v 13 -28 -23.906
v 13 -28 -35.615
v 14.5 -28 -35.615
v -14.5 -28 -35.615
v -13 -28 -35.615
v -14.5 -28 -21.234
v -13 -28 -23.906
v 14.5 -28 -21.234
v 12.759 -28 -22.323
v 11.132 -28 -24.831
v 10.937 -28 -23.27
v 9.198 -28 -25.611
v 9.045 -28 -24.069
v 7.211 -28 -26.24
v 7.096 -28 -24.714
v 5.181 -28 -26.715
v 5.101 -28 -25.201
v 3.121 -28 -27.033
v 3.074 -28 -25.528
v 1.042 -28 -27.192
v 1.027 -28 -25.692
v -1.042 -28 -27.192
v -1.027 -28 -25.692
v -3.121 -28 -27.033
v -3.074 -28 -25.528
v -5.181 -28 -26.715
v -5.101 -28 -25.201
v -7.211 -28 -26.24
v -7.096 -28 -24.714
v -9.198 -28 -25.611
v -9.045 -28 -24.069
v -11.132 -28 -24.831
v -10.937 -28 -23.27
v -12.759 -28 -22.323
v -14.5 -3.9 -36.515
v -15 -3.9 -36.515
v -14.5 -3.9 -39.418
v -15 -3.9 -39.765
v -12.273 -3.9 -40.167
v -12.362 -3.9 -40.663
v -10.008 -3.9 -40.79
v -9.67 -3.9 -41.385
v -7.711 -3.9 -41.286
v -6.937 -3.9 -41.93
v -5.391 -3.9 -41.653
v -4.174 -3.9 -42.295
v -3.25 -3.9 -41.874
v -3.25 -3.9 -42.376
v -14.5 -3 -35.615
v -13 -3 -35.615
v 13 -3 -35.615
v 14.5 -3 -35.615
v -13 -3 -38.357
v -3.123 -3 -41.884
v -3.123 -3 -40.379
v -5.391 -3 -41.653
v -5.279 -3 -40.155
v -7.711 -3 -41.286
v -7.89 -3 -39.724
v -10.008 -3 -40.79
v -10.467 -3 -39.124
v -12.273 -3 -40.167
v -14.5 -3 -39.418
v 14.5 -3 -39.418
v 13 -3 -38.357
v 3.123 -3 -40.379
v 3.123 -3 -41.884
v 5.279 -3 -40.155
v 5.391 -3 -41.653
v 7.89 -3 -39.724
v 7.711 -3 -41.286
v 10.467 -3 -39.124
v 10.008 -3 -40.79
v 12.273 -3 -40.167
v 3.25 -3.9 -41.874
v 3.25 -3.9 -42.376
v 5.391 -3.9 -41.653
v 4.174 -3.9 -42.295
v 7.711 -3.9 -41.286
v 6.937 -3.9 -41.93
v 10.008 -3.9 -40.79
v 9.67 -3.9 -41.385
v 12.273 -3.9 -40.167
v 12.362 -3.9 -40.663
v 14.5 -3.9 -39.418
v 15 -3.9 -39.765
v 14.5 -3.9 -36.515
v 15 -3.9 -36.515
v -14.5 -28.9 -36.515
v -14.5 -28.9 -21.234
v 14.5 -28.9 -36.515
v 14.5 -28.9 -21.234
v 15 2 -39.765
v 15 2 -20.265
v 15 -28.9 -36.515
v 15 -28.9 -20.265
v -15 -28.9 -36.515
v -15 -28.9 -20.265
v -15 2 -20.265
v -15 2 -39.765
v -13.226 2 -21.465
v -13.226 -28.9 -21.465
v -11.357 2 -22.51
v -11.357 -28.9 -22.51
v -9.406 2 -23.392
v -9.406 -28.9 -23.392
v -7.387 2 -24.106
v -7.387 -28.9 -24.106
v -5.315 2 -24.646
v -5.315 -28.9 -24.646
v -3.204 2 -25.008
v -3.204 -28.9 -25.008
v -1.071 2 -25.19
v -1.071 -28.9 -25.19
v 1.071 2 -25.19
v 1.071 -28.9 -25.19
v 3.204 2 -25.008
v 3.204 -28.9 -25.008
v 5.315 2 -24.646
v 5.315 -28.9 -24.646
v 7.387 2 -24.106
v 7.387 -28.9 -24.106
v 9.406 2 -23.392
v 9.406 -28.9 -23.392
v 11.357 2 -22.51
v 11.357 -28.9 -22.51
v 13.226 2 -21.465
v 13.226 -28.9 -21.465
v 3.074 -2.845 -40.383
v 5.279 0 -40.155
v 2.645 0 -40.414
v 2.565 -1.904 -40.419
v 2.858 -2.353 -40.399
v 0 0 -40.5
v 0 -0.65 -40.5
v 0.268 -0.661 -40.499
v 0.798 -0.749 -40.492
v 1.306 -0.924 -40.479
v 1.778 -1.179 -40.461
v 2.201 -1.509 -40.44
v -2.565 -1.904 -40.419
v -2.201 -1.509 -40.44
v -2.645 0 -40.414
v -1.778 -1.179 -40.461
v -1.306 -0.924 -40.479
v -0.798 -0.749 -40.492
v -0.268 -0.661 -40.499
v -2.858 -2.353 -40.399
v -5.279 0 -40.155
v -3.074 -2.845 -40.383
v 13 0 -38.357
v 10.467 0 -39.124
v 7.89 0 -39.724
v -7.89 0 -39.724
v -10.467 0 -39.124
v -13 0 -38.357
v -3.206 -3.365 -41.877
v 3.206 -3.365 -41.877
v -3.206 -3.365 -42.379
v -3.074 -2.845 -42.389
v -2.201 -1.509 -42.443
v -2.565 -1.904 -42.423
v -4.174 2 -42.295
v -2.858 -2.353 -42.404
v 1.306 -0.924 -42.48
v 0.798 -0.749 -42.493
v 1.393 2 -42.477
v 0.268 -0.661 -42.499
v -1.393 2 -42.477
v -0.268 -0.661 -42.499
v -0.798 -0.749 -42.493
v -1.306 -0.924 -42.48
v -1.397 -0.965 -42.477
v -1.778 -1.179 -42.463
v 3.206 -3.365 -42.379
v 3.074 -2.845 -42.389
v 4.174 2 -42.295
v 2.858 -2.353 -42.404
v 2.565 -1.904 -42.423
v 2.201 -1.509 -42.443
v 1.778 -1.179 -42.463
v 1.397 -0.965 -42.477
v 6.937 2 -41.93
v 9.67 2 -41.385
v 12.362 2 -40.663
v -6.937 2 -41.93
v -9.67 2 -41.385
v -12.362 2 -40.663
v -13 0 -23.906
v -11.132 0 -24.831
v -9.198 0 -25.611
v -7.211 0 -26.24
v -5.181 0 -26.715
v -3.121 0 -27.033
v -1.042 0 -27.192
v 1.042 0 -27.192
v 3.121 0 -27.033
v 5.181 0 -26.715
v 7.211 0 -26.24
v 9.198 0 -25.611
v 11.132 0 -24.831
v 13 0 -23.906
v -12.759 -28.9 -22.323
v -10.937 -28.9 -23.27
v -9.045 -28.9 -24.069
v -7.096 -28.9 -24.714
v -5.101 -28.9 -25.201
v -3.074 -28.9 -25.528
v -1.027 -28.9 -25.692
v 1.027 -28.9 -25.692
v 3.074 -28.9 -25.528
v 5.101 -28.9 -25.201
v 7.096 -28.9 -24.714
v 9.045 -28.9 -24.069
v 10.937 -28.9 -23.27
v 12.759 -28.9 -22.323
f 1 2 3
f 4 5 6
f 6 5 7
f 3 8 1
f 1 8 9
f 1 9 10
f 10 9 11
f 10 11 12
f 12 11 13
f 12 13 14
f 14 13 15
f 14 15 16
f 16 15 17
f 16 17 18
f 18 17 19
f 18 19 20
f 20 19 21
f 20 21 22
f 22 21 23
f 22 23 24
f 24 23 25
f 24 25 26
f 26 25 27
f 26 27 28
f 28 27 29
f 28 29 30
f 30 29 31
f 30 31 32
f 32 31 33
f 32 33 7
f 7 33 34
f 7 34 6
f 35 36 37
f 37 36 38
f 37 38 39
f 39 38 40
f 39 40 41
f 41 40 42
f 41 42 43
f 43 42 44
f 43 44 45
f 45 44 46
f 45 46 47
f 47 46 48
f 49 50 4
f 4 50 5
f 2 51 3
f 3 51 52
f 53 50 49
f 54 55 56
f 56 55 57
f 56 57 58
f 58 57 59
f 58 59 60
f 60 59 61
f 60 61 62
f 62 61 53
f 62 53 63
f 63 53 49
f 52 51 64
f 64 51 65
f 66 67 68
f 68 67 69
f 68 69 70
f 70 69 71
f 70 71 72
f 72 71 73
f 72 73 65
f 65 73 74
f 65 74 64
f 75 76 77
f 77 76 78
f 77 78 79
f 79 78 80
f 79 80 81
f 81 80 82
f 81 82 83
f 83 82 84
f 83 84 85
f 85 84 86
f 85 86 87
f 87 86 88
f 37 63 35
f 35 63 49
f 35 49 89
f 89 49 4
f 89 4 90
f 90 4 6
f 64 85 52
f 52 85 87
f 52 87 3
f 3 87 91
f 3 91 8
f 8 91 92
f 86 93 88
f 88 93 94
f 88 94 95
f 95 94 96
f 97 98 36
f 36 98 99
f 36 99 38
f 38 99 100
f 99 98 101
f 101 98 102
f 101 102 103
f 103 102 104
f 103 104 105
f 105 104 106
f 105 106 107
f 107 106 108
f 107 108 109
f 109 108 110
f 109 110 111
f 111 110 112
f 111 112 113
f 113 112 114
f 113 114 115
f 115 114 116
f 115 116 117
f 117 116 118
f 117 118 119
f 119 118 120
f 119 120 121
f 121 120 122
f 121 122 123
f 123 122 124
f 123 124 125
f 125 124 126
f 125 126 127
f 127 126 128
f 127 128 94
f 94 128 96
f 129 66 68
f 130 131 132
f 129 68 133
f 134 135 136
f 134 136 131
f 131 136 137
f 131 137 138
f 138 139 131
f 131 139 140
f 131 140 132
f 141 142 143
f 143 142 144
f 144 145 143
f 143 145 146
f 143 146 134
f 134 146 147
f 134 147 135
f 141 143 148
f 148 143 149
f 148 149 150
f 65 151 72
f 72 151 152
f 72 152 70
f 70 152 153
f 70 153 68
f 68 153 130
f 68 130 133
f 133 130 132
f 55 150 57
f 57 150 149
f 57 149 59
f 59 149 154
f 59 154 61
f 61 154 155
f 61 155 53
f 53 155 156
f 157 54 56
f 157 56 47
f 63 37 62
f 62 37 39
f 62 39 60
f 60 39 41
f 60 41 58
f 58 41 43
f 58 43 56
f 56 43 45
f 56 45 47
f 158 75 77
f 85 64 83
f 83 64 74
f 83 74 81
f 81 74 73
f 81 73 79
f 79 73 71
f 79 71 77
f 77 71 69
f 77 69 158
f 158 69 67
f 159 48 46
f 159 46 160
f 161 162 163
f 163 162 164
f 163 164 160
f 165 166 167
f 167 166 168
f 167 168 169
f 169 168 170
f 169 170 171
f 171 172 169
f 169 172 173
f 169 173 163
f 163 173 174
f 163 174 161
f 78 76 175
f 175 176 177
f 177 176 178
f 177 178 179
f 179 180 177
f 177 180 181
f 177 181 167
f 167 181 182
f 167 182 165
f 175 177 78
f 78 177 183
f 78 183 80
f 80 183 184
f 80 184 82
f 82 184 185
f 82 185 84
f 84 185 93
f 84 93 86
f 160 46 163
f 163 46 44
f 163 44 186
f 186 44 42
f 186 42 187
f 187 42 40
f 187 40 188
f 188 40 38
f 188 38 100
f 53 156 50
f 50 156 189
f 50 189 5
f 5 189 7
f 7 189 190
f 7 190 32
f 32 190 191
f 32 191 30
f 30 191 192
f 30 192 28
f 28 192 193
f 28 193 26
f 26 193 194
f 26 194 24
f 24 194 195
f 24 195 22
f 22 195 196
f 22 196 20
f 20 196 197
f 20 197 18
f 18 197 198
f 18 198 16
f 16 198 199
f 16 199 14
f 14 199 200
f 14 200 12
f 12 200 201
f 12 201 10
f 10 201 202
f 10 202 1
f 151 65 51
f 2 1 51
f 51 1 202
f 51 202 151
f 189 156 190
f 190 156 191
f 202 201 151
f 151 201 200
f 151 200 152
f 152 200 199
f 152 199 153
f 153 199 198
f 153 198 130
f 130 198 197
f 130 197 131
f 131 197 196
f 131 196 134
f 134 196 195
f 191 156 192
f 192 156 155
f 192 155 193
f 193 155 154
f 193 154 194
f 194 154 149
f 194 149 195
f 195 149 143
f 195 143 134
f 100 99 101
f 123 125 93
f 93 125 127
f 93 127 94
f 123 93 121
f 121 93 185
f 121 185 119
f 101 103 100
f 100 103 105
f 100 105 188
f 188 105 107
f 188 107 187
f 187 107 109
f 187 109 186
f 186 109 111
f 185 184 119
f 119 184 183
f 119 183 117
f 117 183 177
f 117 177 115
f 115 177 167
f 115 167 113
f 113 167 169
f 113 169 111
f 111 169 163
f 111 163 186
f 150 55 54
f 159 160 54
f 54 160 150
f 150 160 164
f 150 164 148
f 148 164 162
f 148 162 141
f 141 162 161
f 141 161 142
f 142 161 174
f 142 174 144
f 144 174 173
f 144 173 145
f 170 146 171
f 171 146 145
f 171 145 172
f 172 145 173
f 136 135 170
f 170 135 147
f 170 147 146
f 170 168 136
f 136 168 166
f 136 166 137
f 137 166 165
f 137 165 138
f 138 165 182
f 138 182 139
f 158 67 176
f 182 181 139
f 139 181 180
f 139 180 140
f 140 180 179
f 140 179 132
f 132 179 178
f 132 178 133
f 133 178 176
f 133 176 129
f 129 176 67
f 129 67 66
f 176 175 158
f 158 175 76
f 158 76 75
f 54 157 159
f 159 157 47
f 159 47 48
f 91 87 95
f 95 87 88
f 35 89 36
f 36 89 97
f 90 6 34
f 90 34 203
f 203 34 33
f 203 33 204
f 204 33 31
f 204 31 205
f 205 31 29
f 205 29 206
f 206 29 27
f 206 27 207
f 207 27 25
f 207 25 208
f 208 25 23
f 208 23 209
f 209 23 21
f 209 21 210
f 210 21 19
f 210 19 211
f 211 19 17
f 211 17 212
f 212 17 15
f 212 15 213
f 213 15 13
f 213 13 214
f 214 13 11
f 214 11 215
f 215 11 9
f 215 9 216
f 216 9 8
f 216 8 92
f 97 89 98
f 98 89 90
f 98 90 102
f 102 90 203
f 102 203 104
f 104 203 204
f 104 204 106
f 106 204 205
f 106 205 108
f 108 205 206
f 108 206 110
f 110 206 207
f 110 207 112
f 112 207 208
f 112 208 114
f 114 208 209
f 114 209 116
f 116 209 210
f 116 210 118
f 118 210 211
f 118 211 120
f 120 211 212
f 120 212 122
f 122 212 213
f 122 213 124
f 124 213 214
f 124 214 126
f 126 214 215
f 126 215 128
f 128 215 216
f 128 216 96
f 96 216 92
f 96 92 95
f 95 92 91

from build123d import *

# Parameters (mm, degrees)
BOSS_EXTRUDE2_DEPTH  = 2
BOSS_EXTRUDE9_DEPTH  = 3
BOSS_EXTRUDE10_DEPTH = 0.9
SKETCH20_R           = 3.25
CUT_EXTRUDE14_DEPTH  = 20.9
SKETCH21_W           = 30
SKETCH21_H           = 16.85185618
CUT_EXTRUDE15_DEPTH  = 1
BOSS_EXTRUDE11_DEPTH = 25
SKETCH23_W           = 0.5
SKETCH23_H           = 24.1
BOSS_EXTRUDE12_DEPTH = 0.9
BOSS_EXTRUDE13_DEPTH = 0.9


with BuildPart() as part:
    # Sketch1 → Boss-Extrude2 (new body)
    with BuildSketch(Plane(origin=(0, 0, 0), x_dir=(1, 0, 0), z_dir=(0, 1, 0))):
        with BuildLine():
            Line((-15, 39.764934301), (-15, 20.264934301))
            ThreePointArc((-15, 20.264934301), (0, 25.212448557), (15, 20.264934301))
            Line((15, 20.264934301), (15, 39.764934301))
            ThreePointArc((15, 39.764934301), (0, 42.5), (-15, 39.764934301))
        make_face()
    extrude(amount=BOSS_EXTRUDE2_DEPTH)

    # Sketch16 → Boss-Extrude9 (add)
    with BuildSketch(Plane.XZ):
        with BuildLine():
            Line((-15, -20.264934301), (-15, -39.764934301))
            ThreePointArc((-15, -39.764934301), (0, -42.5), (15, -39.764934301))
            Line((15, -39.764934301), (15, -20.264934301))
            ThreePointArc((15, -20.264934301), (0, -25.212448557), (-15, -20.264934301))
        make_face()
        with BuildLine():
            ThreePointArc((-13, -38.356876828), (0, -40.5), (13, -38.356876828))
            Line((13, -38.356876828), (13, -23.906429187))
            ThreePointArc((13, -23.906429187), (0, -27.212448557), (-13, -23.906429187))
            Line((-13, -23.906429187), (-13, -38.356876828))
        make_face(mode=Mode.SUBTRACT)
    extrude(amount=BOSS_EXTRUDE9_DEPTH)

    # Sketch17 → Boss-Extrude10 (add)
    with BuildSketch(Plane.XZ.offset(3)):
        with BuildLine():
            ThreePointArc((15, -20.264934301), (0, -25.212448557), (-15, -20.264934301))
            Line((-15, -20.264934301), (-15, -39.764934301))
            ThreePointArc((-15, -39.764934301), (0, -42.5), (15, -39.764934301))
            Line((15, -39.764934301), (15, -20.264934301))
        make_face()
        with BuildLine():
            ThreePointArc((-14.5, -39.417635647), (0, -42), (14.5, -39.417635647))
            Line((14.5, -39.417635647), (14.5, -21.233935358))
            ThreePointArc((14.5, -21.233935358), (0, -25.712448557), (-14.5, -21.233935358))
            Line((-14.5, -21.233935358), (-14.5, -39.417635647))
        make_face(mode=Mode.SUBTRACT)
    extrude(amount=BOSS_EXTRUDE10_DEPTH)

    # Sketch20 → Cut-Extrude14 (cut)
    with BuildSketch(Plane.XY.offset(-50)):
        with Locations((0, -3.9)):
            Circle(SKETCH20_R)
    extrude(amount=CUT_EXTRUDE14_DEPTH, mode=Mode.SUBTRACT)

    # Sketch21 → Cut-Extrude15 (cut)
    with BuildSketch(Plane.XZ.offset(3)):
        with Locations((0, -27.189006211)):
            Rectangle(SKETCH21_W, SKETCH21_H)
    extrude(amount=CUT_EXTRUDE15_DEPTH, mode=Mode.SUBTRACT)

    # Sketch22 → Boss-Extrude11 (add)
    with BuildSketch(Plane.XZ.offset(3)):
        with BuildLine():
            Line((15, -20.264934301), (15, -35.614934301))
            Line((15, -35.614934301), (13, -35.614934301))
            Line((13, -35.614934301), (13, -23.906429187))
            ThreePointArc((13, -23.906429187), (0, -27.212448557), (-13, -23.906429187))
            Line((-13, -23.906429187), (-13, -35.614934301))
            Line((-13, -35.614934301), (-15, -35.614934301))
            Line((-15, -35.614934301), (-15, -20.264934301))
            ThreePointArc((-15, -20.264934301), (0, -25.212448557), (15, -20.264934301))
        make_face()
    extrude(amount=BOSS_EXTRUDE11_DEPTH)

    # Sketch23 → Boss-Extrude12 (add)
    with BuildSketch(Plane(origin=(0, 0, -35.614934301), x_dir=(-1, 0, 0), z_dir=(0, 0, -1))):
        with Locations((-14.75, -15.95)):
            Rectangle(SKETCH23_W, SKETCH23_H)
        with Locations((14.75, -15.95)):
            Rectangle(SKETCH23_W, SKETCH23_H)
    extrude(amount=BOSS_EXTRUDE12_DEPTH)

    # Sketch26 → Boss-Extrude13 (add)
    with BuildSketch(Plane.XZ.offset(28)):
        with BuildLine():
            Line((15, -36.514934301), (15, -20.264934301))
            ThreePointArc((15, -20.264934301), (0, -25.212448557), (-15, -20.264934301))
            Line((-15, -20.264934301), (-15, -36.514934301))
            Line((-15, -36.514934301), (-14.5, -36.514934301))
            Line((-14.5, -36.514934301), (-14.5, -21.233935358))
            ThreePointArc((-14.5, -21.233935358), (0, -25.712448557), (14.5, -21.233935358))
            Line((14.5, -21.233935358), (14.5, -36.514934301))
            Line((14.5, -36.514934301), (15, -36.514934301))
        make_face()
    extrude(amount=BOSS_EXTRUDE13_DEPTH)


solid = part.part
